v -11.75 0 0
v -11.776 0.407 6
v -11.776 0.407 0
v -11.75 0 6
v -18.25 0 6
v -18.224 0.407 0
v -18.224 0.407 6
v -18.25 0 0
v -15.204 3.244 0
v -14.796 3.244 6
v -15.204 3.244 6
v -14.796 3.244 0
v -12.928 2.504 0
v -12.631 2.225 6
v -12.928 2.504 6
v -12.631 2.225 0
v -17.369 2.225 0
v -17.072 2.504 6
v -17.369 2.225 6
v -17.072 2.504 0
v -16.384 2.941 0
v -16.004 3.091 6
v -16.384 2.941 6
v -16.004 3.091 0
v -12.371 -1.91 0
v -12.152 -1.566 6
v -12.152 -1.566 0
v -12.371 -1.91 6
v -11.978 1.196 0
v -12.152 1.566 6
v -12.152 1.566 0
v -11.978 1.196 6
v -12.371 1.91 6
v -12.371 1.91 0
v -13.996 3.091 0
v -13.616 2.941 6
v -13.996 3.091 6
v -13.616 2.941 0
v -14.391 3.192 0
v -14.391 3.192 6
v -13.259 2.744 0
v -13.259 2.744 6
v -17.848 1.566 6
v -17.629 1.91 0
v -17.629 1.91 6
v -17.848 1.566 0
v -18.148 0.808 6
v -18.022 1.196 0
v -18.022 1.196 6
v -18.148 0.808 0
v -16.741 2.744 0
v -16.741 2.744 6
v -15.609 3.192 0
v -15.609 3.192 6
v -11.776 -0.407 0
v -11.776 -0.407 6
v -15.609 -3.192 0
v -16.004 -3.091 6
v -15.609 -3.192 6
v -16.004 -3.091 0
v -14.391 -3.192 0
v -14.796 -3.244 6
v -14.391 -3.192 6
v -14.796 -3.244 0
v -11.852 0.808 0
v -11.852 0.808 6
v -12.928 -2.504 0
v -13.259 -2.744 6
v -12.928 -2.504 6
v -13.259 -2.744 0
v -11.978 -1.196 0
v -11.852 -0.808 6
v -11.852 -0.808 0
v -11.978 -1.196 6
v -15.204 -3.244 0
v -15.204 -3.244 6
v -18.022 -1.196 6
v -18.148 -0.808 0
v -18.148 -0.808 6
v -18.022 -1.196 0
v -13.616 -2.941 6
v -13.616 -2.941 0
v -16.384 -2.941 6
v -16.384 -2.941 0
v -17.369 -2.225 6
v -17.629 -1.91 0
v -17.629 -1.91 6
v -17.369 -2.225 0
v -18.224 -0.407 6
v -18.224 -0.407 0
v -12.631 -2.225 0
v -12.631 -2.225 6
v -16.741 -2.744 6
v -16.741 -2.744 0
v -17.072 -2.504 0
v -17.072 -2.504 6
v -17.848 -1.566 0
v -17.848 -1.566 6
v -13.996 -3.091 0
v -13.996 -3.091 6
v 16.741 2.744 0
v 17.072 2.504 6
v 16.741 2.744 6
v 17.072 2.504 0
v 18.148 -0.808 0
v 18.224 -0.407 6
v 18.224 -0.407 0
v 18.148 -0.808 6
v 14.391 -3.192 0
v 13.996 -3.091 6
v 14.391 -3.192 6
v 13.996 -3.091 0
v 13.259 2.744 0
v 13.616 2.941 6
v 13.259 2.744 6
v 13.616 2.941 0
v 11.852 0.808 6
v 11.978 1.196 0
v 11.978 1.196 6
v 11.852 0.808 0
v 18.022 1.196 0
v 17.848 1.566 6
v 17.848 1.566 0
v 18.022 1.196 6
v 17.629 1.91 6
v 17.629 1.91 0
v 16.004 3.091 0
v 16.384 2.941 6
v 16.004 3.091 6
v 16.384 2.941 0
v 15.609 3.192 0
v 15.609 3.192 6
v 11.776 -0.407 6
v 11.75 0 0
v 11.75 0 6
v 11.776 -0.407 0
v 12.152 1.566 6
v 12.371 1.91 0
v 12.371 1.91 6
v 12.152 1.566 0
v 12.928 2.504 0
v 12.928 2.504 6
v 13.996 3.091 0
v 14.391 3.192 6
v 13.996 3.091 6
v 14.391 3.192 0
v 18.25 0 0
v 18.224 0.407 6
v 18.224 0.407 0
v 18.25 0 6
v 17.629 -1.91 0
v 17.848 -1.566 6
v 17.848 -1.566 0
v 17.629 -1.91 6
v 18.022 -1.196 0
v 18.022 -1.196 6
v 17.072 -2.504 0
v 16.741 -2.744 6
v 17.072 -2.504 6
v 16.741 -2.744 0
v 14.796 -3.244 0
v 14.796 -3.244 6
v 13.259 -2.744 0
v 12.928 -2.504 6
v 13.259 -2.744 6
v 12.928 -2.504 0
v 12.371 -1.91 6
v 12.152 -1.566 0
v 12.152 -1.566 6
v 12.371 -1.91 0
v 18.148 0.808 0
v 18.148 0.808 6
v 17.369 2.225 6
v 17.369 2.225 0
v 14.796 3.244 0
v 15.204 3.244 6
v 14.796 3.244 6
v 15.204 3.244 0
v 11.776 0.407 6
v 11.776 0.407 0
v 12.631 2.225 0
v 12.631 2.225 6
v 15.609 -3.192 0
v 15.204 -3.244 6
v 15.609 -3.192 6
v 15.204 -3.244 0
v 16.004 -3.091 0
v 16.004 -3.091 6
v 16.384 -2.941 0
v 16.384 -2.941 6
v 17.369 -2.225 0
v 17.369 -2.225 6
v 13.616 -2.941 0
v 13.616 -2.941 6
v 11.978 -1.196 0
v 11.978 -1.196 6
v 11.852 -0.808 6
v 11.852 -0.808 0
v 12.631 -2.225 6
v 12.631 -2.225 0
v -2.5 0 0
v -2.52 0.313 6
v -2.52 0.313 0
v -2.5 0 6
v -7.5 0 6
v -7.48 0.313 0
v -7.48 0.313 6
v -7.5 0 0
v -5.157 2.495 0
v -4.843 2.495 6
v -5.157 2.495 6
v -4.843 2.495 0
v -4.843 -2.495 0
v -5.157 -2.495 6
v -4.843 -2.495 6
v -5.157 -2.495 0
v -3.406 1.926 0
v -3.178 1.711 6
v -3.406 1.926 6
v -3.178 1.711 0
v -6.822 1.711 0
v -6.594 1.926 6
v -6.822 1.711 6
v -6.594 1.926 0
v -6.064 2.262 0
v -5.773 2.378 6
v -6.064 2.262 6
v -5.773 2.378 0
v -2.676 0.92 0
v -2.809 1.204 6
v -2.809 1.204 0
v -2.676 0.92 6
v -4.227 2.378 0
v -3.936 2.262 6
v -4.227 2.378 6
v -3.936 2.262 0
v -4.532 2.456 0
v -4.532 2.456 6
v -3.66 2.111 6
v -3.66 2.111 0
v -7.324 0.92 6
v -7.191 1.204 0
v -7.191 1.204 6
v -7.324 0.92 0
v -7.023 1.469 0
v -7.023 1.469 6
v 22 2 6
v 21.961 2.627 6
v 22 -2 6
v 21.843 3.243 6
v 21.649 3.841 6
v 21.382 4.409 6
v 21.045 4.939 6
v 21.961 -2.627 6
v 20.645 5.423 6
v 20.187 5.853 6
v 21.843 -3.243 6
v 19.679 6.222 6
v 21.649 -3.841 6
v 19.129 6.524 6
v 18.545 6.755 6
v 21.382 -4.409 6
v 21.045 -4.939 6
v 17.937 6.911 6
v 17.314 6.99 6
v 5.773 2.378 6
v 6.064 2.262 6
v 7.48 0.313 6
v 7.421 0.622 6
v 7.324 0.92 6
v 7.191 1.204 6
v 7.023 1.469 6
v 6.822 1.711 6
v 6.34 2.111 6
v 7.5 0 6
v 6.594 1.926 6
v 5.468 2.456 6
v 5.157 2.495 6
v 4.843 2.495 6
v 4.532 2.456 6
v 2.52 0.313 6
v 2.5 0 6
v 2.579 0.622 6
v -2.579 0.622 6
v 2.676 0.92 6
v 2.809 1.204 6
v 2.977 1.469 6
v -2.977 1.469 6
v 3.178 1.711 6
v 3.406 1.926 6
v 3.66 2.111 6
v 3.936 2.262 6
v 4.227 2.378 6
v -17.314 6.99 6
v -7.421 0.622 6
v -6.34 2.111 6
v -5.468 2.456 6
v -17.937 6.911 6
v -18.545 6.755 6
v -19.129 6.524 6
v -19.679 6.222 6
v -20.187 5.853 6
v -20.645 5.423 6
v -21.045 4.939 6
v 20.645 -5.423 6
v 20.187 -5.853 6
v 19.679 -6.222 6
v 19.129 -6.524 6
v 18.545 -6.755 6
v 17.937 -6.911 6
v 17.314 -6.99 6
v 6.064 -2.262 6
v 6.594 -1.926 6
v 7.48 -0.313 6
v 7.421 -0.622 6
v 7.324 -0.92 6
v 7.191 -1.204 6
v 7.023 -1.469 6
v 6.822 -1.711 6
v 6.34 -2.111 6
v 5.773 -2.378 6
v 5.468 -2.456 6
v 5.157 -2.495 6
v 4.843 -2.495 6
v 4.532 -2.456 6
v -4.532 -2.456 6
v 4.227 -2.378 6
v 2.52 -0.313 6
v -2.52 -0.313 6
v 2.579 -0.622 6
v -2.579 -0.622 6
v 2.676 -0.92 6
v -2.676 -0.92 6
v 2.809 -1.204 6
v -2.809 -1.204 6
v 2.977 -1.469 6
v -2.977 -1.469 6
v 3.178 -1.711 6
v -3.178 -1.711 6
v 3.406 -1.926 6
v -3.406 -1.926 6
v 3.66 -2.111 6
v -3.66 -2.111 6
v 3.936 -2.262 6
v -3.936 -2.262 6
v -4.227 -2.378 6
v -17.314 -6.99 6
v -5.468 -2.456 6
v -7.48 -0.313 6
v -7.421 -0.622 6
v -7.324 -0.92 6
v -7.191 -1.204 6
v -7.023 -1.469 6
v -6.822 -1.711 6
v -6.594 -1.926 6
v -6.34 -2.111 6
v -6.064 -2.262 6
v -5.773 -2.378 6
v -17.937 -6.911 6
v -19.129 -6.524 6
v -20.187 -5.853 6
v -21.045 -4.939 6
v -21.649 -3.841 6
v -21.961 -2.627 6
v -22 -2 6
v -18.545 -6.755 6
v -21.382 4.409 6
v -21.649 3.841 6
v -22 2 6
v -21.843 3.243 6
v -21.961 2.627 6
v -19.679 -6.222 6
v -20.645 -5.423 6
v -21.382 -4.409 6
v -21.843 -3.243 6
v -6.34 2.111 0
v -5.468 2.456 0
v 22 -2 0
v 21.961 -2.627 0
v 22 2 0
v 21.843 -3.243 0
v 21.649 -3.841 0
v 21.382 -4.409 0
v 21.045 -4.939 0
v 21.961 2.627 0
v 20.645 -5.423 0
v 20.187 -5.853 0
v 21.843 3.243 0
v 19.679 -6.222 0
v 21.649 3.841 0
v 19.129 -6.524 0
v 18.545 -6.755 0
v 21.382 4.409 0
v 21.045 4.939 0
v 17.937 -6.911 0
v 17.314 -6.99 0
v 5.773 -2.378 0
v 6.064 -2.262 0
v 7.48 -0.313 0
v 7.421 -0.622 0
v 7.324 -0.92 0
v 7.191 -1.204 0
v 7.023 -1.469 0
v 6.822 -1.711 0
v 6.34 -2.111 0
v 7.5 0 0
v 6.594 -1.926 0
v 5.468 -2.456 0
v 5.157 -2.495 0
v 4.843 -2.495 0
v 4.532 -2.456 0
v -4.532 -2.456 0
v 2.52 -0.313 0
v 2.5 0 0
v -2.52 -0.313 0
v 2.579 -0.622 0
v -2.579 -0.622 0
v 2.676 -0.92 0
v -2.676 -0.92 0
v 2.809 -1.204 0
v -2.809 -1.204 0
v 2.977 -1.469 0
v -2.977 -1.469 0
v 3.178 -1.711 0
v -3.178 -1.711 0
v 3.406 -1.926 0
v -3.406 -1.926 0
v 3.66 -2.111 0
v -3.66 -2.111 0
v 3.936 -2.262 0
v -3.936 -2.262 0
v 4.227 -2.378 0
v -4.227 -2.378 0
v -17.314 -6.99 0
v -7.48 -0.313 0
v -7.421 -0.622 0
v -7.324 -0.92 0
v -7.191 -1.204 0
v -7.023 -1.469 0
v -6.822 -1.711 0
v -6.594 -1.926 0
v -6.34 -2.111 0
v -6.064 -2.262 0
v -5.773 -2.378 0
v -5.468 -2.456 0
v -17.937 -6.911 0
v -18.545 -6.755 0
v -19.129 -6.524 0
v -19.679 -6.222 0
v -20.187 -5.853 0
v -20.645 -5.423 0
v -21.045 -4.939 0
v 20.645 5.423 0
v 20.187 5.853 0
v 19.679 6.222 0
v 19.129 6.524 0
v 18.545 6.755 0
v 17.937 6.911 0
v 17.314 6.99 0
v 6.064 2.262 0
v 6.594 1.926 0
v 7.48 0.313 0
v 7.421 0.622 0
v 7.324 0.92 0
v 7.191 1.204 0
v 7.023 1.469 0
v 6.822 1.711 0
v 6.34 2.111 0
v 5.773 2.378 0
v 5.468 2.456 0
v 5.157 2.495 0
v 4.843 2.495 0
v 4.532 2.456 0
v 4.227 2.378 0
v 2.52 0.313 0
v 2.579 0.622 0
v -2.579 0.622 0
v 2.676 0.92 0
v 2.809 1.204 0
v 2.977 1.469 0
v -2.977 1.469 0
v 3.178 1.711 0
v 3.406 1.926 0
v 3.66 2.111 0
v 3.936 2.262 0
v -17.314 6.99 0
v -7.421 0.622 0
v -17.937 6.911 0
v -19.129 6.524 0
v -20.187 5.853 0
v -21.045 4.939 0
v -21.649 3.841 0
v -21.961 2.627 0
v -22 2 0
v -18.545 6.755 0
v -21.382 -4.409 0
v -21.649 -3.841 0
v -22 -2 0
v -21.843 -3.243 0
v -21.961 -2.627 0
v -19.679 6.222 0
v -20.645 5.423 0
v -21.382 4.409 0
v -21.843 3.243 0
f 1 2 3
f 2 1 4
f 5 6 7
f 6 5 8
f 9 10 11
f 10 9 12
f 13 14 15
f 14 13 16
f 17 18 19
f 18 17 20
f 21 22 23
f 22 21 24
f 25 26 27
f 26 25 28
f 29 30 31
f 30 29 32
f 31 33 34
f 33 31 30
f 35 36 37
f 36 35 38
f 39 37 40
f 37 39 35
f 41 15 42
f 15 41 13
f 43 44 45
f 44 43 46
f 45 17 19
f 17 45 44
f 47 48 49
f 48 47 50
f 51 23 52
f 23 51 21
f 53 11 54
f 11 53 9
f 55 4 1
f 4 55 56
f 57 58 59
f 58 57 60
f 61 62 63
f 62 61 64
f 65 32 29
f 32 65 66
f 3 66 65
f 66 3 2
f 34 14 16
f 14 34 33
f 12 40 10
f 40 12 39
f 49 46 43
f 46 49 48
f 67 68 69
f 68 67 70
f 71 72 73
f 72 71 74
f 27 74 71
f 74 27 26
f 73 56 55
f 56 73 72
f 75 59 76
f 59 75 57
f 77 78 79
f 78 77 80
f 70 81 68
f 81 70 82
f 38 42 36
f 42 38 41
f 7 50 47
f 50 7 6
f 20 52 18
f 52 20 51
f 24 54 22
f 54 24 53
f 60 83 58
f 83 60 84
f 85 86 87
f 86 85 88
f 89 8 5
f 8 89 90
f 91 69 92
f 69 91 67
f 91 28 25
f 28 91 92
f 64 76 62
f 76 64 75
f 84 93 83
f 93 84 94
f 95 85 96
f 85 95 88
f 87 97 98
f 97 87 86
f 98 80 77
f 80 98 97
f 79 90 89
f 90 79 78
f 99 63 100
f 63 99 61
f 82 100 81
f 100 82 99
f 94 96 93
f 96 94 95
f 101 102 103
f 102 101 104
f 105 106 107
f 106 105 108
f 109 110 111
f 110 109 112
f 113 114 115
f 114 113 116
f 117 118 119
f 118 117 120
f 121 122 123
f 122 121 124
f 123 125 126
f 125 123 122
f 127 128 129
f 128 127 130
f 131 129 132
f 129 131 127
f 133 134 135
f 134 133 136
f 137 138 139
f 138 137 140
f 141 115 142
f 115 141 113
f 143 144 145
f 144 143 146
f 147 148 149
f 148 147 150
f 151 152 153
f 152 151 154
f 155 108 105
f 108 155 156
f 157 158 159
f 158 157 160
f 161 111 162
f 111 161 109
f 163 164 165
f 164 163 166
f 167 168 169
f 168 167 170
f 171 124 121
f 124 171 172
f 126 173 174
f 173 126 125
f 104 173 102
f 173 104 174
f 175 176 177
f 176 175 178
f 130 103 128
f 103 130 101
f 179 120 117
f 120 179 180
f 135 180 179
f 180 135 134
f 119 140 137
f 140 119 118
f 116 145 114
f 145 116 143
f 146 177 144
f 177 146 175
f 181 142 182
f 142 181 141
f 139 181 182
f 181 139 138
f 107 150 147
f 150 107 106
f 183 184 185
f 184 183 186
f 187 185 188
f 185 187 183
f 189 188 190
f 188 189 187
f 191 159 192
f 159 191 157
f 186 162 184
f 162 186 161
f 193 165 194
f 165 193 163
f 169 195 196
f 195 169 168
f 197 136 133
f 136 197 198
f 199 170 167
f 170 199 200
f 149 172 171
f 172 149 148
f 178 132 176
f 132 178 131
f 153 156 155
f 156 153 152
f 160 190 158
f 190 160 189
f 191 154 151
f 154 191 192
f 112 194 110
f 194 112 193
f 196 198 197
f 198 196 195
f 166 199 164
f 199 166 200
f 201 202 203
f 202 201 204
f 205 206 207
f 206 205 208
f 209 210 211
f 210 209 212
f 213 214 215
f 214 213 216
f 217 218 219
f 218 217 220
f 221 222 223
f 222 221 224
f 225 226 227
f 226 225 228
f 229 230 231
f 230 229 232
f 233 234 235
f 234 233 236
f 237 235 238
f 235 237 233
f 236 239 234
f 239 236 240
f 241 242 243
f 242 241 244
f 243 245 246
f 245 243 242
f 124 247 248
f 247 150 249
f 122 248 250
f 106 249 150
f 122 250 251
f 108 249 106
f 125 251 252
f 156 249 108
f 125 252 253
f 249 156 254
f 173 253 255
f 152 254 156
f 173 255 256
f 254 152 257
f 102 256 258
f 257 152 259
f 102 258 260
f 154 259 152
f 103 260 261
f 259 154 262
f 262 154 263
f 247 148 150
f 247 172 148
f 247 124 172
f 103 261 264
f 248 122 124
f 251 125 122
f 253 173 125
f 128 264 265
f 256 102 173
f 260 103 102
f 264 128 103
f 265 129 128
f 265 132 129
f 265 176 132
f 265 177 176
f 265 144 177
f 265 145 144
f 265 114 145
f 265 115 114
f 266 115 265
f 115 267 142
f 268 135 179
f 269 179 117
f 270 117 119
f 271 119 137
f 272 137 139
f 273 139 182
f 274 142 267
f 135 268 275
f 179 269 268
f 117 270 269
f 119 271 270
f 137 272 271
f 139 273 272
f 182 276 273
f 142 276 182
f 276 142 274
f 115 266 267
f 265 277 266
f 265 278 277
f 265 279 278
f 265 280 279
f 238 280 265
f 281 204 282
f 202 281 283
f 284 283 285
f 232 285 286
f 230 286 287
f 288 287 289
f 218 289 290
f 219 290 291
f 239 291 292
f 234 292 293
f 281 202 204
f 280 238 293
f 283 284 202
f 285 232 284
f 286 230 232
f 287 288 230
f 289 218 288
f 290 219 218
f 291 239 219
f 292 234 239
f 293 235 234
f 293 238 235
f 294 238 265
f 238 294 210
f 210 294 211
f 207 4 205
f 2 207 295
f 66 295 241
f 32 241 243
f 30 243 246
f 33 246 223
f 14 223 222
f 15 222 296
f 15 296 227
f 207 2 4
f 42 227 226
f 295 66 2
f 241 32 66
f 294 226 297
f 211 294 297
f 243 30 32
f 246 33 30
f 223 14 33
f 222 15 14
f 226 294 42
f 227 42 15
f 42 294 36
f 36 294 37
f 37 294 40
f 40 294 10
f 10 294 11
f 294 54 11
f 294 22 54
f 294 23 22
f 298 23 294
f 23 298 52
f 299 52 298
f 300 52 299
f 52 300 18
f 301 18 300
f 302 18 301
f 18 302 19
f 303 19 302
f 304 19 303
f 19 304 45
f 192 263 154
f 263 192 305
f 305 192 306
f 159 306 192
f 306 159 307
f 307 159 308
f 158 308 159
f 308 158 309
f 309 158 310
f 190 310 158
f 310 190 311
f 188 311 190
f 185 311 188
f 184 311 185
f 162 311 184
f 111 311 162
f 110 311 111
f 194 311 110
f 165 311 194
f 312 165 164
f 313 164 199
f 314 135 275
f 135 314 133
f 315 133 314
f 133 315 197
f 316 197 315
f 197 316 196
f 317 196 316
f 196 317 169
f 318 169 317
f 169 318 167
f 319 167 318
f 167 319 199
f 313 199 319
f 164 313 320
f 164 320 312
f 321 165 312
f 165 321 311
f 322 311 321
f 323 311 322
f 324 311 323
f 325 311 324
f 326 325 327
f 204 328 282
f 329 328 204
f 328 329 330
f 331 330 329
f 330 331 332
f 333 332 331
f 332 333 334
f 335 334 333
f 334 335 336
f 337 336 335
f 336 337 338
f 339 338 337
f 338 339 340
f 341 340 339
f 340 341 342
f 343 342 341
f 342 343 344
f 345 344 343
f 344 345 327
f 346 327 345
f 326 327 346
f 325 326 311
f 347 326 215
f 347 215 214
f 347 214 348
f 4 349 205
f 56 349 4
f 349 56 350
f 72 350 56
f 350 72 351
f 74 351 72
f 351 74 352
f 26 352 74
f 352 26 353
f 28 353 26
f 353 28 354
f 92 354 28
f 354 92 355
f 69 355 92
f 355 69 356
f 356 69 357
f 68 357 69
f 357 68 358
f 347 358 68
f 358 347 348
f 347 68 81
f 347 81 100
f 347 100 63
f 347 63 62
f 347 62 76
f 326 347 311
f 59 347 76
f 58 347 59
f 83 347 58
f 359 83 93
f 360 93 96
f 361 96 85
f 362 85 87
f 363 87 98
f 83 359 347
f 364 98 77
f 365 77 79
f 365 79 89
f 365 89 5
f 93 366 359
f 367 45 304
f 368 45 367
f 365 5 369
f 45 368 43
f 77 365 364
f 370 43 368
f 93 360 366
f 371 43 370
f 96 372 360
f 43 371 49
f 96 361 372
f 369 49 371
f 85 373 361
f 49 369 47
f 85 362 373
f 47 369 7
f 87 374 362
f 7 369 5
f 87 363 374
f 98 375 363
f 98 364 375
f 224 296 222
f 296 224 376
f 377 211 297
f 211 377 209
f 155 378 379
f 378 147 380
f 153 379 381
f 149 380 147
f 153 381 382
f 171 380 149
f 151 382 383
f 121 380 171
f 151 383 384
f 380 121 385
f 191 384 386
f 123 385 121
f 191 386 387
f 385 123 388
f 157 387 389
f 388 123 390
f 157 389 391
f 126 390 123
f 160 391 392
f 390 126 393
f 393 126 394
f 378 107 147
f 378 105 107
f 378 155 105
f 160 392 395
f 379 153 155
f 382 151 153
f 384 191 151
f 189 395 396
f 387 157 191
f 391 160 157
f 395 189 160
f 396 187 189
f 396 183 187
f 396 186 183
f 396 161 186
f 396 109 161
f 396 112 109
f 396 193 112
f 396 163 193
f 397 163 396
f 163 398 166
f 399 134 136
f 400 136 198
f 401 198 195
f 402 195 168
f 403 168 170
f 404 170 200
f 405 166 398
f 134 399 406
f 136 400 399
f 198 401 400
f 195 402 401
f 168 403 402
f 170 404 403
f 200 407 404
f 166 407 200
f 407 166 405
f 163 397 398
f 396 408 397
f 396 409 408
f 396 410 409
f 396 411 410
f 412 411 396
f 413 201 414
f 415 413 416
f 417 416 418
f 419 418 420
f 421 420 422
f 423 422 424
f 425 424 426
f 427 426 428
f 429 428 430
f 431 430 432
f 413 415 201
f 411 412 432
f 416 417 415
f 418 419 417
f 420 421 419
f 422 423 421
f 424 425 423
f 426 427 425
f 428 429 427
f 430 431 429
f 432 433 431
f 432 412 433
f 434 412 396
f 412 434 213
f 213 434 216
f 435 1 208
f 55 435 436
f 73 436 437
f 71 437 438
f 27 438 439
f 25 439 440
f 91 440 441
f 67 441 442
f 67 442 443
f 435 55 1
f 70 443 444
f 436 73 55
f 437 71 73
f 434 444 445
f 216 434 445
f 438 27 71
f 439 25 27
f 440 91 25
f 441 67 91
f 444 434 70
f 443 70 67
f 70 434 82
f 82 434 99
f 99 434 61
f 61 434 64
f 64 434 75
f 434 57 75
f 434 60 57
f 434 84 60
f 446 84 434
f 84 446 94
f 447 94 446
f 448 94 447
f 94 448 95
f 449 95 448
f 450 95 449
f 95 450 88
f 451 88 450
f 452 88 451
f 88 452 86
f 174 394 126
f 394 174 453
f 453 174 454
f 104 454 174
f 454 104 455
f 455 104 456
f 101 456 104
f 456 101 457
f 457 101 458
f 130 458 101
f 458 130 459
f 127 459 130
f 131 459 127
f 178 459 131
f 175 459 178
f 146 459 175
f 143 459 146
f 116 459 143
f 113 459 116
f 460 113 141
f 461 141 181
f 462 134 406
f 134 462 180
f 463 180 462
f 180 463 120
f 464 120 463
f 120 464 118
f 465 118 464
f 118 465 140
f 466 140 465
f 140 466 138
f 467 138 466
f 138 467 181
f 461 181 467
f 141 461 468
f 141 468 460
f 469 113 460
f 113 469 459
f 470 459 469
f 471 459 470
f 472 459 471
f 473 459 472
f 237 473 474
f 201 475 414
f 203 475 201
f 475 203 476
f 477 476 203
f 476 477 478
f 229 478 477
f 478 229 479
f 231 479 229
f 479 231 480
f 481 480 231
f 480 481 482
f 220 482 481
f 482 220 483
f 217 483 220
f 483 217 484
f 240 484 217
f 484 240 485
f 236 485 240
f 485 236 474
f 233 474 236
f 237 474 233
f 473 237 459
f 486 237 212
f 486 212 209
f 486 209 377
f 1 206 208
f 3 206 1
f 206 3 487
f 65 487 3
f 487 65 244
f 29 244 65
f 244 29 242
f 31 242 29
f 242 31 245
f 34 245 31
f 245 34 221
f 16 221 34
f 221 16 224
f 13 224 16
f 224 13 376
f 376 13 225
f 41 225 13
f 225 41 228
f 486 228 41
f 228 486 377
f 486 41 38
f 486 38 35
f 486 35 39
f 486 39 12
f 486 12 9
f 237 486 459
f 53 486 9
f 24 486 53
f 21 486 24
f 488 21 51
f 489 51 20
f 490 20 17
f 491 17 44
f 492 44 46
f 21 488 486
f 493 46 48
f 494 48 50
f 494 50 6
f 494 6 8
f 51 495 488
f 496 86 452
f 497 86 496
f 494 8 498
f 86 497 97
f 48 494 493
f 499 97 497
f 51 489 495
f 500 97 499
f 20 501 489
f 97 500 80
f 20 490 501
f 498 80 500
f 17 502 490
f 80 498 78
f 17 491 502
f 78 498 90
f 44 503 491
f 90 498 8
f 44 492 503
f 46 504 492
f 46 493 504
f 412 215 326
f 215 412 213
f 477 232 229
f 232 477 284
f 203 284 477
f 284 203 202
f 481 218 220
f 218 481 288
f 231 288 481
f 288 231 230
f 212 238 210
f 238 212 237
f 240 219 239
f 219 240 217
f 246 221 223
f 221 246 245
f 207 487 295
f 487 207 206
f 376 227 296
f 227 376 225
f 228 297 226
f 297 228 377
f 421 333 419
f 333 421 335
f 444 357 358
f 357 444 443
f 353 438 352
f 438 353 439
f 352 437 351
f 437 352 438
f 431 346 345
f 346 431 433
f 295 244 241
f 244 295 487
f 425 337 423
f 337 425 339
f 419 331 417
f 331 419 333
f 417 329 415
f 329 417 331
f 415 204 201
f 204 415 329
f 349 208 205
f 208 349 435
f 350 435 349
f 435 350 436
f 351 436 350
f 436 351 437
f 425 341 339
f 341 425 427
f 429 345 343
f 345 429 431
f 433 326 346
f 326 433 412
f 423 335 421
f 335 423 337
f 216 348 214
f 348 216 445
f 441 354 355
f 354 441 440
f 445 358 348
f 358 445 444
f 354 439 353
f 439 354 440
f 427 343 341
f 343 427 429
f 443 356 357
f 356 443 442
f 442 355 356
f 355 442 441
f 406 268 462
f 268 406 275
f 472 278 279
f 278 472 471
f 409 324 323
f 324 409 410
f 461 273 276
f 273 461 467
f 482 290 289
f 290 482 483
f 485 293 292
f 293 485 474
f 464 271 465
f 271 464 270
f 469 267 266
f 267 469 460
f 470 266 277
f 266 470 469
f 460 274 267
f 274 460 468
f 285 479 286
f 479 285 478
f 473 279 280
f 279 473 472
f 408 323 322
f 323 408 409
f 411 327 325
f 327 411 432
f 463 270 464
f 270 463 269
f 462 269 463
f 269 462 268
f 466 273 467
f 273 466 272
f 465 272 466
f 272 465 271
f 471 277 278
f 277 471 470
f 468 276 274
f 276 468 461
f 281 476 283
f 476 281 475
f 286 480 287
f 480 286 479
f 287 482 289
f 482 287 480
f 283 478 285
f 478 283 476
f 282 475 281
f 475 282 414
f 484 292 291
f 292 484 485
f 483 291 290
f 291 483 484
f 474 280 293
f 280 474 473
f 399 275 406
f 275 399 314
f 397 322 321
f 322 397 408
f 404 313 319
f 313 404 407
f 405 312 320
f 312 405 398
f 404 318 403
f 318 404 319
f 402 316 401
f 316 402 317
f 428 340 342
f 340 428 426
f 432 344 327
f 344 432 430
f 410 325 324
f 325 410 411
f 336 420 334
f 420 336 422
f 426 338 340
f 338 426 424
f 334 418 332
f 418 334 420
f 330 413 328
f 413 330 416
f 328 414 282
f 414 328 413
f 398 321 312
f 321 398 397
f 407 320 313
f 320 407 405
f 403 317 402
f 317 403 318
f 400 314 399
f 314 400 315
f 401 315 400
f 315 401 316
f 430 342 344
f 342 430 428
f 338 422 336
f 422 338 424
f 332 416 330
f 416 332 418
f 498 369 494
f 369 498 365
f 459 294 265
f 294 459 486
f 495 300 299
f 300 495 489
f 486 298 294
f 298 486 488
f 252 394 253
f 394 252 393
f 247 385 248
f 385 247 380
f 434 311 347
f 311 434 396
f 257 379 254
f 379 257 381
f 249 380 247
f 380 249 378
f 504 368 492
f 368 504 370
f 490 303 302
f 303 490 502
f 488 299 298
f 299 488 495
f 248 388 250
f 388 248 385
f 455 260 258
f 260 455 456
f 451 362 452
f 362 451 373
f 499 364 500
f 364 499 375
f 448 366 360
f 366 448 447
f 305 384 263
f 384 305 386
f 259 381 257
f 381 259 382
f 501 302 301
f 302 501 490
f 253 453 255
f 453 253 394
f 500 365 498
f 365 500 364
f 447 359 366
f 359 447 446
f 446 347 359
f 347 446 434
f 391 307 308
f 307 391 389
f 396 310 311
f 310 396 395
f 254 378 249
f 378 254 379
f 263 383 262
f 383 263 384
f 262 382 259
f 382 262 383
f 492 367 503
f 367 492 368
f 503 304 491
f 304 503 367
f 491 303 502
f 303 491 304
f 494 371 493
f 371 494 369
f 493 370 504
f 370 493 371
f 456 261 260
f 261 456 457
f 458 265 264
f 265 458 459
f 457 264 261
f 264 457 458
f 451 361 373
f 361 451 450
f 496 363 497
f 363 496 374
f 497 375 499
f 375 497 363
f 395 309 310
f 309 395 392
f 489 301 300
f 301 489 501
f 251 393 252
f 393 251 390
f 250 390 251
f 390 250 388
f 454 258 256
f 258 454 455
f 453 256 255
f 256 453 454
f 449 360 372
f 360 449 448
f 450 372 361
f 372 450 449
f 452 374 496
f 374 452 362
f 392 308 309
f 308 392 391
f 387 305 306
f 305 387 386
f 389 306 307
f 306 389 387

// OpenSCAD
$fn = 50;


difference() {
	union() {
		hull() {
			translate(v = [-17.0000000000, 2.0000000000, 0]) {
				cylinder(h = 6, r = 5);
			}
			translate(v = [17.0000000000, 2.0000000000, 0]) {
				cylinder(h = 6, r = 5);
			}
			translate(v = [-17.0000000000, -2.0000000000, 0]) {
				cylinder(h = 6, r = 5);
			}
			translate(v = [17.0000000000, -2.0000000000, 0]) {
				cylinder(h = 6, r = 5);
			}
		}
	}
	union() {
		#translate(v = [-15.0000000000, 0.0000000000, -100.0000000000]) {
			cylinder(h = 200, r = 3.2500000000);
		}
		#translate(v = [-15.0000000000, 0.0000000000, -100.0000000000]) {
			cylinder(h = 200, r = 3.2500000000);
		}
		#translate(v = [15.0000000000, 0.0000000000, -100.0000000000]) {
			cylinder(h = 200, r = 3.2500000000);
		}
		#translate(v = [15.0000000000, 0.0000000000, -100.0000000000]) {
			cylinder(h = 200, r = 3.2500000000);
		}
		#translate(v = [-15.0000000000, 0, 0]) {
			cylinder(h = 6, r = 2.5000000000);
		}
		#translate(v = [-5.0000000000, 0, 0]) {
			cylinder(h = 6, r = 2.5000000000);
		}
		#translate(v = [5.0000000000, 0, 0]) {
			cylinder(h = 6, r = 2.5000000000);
		}
		#translate(v = [15.0000000000, 0, 0]) {
			cylinder(h = 6, r = 2.5000000000);
		}
	}
}
